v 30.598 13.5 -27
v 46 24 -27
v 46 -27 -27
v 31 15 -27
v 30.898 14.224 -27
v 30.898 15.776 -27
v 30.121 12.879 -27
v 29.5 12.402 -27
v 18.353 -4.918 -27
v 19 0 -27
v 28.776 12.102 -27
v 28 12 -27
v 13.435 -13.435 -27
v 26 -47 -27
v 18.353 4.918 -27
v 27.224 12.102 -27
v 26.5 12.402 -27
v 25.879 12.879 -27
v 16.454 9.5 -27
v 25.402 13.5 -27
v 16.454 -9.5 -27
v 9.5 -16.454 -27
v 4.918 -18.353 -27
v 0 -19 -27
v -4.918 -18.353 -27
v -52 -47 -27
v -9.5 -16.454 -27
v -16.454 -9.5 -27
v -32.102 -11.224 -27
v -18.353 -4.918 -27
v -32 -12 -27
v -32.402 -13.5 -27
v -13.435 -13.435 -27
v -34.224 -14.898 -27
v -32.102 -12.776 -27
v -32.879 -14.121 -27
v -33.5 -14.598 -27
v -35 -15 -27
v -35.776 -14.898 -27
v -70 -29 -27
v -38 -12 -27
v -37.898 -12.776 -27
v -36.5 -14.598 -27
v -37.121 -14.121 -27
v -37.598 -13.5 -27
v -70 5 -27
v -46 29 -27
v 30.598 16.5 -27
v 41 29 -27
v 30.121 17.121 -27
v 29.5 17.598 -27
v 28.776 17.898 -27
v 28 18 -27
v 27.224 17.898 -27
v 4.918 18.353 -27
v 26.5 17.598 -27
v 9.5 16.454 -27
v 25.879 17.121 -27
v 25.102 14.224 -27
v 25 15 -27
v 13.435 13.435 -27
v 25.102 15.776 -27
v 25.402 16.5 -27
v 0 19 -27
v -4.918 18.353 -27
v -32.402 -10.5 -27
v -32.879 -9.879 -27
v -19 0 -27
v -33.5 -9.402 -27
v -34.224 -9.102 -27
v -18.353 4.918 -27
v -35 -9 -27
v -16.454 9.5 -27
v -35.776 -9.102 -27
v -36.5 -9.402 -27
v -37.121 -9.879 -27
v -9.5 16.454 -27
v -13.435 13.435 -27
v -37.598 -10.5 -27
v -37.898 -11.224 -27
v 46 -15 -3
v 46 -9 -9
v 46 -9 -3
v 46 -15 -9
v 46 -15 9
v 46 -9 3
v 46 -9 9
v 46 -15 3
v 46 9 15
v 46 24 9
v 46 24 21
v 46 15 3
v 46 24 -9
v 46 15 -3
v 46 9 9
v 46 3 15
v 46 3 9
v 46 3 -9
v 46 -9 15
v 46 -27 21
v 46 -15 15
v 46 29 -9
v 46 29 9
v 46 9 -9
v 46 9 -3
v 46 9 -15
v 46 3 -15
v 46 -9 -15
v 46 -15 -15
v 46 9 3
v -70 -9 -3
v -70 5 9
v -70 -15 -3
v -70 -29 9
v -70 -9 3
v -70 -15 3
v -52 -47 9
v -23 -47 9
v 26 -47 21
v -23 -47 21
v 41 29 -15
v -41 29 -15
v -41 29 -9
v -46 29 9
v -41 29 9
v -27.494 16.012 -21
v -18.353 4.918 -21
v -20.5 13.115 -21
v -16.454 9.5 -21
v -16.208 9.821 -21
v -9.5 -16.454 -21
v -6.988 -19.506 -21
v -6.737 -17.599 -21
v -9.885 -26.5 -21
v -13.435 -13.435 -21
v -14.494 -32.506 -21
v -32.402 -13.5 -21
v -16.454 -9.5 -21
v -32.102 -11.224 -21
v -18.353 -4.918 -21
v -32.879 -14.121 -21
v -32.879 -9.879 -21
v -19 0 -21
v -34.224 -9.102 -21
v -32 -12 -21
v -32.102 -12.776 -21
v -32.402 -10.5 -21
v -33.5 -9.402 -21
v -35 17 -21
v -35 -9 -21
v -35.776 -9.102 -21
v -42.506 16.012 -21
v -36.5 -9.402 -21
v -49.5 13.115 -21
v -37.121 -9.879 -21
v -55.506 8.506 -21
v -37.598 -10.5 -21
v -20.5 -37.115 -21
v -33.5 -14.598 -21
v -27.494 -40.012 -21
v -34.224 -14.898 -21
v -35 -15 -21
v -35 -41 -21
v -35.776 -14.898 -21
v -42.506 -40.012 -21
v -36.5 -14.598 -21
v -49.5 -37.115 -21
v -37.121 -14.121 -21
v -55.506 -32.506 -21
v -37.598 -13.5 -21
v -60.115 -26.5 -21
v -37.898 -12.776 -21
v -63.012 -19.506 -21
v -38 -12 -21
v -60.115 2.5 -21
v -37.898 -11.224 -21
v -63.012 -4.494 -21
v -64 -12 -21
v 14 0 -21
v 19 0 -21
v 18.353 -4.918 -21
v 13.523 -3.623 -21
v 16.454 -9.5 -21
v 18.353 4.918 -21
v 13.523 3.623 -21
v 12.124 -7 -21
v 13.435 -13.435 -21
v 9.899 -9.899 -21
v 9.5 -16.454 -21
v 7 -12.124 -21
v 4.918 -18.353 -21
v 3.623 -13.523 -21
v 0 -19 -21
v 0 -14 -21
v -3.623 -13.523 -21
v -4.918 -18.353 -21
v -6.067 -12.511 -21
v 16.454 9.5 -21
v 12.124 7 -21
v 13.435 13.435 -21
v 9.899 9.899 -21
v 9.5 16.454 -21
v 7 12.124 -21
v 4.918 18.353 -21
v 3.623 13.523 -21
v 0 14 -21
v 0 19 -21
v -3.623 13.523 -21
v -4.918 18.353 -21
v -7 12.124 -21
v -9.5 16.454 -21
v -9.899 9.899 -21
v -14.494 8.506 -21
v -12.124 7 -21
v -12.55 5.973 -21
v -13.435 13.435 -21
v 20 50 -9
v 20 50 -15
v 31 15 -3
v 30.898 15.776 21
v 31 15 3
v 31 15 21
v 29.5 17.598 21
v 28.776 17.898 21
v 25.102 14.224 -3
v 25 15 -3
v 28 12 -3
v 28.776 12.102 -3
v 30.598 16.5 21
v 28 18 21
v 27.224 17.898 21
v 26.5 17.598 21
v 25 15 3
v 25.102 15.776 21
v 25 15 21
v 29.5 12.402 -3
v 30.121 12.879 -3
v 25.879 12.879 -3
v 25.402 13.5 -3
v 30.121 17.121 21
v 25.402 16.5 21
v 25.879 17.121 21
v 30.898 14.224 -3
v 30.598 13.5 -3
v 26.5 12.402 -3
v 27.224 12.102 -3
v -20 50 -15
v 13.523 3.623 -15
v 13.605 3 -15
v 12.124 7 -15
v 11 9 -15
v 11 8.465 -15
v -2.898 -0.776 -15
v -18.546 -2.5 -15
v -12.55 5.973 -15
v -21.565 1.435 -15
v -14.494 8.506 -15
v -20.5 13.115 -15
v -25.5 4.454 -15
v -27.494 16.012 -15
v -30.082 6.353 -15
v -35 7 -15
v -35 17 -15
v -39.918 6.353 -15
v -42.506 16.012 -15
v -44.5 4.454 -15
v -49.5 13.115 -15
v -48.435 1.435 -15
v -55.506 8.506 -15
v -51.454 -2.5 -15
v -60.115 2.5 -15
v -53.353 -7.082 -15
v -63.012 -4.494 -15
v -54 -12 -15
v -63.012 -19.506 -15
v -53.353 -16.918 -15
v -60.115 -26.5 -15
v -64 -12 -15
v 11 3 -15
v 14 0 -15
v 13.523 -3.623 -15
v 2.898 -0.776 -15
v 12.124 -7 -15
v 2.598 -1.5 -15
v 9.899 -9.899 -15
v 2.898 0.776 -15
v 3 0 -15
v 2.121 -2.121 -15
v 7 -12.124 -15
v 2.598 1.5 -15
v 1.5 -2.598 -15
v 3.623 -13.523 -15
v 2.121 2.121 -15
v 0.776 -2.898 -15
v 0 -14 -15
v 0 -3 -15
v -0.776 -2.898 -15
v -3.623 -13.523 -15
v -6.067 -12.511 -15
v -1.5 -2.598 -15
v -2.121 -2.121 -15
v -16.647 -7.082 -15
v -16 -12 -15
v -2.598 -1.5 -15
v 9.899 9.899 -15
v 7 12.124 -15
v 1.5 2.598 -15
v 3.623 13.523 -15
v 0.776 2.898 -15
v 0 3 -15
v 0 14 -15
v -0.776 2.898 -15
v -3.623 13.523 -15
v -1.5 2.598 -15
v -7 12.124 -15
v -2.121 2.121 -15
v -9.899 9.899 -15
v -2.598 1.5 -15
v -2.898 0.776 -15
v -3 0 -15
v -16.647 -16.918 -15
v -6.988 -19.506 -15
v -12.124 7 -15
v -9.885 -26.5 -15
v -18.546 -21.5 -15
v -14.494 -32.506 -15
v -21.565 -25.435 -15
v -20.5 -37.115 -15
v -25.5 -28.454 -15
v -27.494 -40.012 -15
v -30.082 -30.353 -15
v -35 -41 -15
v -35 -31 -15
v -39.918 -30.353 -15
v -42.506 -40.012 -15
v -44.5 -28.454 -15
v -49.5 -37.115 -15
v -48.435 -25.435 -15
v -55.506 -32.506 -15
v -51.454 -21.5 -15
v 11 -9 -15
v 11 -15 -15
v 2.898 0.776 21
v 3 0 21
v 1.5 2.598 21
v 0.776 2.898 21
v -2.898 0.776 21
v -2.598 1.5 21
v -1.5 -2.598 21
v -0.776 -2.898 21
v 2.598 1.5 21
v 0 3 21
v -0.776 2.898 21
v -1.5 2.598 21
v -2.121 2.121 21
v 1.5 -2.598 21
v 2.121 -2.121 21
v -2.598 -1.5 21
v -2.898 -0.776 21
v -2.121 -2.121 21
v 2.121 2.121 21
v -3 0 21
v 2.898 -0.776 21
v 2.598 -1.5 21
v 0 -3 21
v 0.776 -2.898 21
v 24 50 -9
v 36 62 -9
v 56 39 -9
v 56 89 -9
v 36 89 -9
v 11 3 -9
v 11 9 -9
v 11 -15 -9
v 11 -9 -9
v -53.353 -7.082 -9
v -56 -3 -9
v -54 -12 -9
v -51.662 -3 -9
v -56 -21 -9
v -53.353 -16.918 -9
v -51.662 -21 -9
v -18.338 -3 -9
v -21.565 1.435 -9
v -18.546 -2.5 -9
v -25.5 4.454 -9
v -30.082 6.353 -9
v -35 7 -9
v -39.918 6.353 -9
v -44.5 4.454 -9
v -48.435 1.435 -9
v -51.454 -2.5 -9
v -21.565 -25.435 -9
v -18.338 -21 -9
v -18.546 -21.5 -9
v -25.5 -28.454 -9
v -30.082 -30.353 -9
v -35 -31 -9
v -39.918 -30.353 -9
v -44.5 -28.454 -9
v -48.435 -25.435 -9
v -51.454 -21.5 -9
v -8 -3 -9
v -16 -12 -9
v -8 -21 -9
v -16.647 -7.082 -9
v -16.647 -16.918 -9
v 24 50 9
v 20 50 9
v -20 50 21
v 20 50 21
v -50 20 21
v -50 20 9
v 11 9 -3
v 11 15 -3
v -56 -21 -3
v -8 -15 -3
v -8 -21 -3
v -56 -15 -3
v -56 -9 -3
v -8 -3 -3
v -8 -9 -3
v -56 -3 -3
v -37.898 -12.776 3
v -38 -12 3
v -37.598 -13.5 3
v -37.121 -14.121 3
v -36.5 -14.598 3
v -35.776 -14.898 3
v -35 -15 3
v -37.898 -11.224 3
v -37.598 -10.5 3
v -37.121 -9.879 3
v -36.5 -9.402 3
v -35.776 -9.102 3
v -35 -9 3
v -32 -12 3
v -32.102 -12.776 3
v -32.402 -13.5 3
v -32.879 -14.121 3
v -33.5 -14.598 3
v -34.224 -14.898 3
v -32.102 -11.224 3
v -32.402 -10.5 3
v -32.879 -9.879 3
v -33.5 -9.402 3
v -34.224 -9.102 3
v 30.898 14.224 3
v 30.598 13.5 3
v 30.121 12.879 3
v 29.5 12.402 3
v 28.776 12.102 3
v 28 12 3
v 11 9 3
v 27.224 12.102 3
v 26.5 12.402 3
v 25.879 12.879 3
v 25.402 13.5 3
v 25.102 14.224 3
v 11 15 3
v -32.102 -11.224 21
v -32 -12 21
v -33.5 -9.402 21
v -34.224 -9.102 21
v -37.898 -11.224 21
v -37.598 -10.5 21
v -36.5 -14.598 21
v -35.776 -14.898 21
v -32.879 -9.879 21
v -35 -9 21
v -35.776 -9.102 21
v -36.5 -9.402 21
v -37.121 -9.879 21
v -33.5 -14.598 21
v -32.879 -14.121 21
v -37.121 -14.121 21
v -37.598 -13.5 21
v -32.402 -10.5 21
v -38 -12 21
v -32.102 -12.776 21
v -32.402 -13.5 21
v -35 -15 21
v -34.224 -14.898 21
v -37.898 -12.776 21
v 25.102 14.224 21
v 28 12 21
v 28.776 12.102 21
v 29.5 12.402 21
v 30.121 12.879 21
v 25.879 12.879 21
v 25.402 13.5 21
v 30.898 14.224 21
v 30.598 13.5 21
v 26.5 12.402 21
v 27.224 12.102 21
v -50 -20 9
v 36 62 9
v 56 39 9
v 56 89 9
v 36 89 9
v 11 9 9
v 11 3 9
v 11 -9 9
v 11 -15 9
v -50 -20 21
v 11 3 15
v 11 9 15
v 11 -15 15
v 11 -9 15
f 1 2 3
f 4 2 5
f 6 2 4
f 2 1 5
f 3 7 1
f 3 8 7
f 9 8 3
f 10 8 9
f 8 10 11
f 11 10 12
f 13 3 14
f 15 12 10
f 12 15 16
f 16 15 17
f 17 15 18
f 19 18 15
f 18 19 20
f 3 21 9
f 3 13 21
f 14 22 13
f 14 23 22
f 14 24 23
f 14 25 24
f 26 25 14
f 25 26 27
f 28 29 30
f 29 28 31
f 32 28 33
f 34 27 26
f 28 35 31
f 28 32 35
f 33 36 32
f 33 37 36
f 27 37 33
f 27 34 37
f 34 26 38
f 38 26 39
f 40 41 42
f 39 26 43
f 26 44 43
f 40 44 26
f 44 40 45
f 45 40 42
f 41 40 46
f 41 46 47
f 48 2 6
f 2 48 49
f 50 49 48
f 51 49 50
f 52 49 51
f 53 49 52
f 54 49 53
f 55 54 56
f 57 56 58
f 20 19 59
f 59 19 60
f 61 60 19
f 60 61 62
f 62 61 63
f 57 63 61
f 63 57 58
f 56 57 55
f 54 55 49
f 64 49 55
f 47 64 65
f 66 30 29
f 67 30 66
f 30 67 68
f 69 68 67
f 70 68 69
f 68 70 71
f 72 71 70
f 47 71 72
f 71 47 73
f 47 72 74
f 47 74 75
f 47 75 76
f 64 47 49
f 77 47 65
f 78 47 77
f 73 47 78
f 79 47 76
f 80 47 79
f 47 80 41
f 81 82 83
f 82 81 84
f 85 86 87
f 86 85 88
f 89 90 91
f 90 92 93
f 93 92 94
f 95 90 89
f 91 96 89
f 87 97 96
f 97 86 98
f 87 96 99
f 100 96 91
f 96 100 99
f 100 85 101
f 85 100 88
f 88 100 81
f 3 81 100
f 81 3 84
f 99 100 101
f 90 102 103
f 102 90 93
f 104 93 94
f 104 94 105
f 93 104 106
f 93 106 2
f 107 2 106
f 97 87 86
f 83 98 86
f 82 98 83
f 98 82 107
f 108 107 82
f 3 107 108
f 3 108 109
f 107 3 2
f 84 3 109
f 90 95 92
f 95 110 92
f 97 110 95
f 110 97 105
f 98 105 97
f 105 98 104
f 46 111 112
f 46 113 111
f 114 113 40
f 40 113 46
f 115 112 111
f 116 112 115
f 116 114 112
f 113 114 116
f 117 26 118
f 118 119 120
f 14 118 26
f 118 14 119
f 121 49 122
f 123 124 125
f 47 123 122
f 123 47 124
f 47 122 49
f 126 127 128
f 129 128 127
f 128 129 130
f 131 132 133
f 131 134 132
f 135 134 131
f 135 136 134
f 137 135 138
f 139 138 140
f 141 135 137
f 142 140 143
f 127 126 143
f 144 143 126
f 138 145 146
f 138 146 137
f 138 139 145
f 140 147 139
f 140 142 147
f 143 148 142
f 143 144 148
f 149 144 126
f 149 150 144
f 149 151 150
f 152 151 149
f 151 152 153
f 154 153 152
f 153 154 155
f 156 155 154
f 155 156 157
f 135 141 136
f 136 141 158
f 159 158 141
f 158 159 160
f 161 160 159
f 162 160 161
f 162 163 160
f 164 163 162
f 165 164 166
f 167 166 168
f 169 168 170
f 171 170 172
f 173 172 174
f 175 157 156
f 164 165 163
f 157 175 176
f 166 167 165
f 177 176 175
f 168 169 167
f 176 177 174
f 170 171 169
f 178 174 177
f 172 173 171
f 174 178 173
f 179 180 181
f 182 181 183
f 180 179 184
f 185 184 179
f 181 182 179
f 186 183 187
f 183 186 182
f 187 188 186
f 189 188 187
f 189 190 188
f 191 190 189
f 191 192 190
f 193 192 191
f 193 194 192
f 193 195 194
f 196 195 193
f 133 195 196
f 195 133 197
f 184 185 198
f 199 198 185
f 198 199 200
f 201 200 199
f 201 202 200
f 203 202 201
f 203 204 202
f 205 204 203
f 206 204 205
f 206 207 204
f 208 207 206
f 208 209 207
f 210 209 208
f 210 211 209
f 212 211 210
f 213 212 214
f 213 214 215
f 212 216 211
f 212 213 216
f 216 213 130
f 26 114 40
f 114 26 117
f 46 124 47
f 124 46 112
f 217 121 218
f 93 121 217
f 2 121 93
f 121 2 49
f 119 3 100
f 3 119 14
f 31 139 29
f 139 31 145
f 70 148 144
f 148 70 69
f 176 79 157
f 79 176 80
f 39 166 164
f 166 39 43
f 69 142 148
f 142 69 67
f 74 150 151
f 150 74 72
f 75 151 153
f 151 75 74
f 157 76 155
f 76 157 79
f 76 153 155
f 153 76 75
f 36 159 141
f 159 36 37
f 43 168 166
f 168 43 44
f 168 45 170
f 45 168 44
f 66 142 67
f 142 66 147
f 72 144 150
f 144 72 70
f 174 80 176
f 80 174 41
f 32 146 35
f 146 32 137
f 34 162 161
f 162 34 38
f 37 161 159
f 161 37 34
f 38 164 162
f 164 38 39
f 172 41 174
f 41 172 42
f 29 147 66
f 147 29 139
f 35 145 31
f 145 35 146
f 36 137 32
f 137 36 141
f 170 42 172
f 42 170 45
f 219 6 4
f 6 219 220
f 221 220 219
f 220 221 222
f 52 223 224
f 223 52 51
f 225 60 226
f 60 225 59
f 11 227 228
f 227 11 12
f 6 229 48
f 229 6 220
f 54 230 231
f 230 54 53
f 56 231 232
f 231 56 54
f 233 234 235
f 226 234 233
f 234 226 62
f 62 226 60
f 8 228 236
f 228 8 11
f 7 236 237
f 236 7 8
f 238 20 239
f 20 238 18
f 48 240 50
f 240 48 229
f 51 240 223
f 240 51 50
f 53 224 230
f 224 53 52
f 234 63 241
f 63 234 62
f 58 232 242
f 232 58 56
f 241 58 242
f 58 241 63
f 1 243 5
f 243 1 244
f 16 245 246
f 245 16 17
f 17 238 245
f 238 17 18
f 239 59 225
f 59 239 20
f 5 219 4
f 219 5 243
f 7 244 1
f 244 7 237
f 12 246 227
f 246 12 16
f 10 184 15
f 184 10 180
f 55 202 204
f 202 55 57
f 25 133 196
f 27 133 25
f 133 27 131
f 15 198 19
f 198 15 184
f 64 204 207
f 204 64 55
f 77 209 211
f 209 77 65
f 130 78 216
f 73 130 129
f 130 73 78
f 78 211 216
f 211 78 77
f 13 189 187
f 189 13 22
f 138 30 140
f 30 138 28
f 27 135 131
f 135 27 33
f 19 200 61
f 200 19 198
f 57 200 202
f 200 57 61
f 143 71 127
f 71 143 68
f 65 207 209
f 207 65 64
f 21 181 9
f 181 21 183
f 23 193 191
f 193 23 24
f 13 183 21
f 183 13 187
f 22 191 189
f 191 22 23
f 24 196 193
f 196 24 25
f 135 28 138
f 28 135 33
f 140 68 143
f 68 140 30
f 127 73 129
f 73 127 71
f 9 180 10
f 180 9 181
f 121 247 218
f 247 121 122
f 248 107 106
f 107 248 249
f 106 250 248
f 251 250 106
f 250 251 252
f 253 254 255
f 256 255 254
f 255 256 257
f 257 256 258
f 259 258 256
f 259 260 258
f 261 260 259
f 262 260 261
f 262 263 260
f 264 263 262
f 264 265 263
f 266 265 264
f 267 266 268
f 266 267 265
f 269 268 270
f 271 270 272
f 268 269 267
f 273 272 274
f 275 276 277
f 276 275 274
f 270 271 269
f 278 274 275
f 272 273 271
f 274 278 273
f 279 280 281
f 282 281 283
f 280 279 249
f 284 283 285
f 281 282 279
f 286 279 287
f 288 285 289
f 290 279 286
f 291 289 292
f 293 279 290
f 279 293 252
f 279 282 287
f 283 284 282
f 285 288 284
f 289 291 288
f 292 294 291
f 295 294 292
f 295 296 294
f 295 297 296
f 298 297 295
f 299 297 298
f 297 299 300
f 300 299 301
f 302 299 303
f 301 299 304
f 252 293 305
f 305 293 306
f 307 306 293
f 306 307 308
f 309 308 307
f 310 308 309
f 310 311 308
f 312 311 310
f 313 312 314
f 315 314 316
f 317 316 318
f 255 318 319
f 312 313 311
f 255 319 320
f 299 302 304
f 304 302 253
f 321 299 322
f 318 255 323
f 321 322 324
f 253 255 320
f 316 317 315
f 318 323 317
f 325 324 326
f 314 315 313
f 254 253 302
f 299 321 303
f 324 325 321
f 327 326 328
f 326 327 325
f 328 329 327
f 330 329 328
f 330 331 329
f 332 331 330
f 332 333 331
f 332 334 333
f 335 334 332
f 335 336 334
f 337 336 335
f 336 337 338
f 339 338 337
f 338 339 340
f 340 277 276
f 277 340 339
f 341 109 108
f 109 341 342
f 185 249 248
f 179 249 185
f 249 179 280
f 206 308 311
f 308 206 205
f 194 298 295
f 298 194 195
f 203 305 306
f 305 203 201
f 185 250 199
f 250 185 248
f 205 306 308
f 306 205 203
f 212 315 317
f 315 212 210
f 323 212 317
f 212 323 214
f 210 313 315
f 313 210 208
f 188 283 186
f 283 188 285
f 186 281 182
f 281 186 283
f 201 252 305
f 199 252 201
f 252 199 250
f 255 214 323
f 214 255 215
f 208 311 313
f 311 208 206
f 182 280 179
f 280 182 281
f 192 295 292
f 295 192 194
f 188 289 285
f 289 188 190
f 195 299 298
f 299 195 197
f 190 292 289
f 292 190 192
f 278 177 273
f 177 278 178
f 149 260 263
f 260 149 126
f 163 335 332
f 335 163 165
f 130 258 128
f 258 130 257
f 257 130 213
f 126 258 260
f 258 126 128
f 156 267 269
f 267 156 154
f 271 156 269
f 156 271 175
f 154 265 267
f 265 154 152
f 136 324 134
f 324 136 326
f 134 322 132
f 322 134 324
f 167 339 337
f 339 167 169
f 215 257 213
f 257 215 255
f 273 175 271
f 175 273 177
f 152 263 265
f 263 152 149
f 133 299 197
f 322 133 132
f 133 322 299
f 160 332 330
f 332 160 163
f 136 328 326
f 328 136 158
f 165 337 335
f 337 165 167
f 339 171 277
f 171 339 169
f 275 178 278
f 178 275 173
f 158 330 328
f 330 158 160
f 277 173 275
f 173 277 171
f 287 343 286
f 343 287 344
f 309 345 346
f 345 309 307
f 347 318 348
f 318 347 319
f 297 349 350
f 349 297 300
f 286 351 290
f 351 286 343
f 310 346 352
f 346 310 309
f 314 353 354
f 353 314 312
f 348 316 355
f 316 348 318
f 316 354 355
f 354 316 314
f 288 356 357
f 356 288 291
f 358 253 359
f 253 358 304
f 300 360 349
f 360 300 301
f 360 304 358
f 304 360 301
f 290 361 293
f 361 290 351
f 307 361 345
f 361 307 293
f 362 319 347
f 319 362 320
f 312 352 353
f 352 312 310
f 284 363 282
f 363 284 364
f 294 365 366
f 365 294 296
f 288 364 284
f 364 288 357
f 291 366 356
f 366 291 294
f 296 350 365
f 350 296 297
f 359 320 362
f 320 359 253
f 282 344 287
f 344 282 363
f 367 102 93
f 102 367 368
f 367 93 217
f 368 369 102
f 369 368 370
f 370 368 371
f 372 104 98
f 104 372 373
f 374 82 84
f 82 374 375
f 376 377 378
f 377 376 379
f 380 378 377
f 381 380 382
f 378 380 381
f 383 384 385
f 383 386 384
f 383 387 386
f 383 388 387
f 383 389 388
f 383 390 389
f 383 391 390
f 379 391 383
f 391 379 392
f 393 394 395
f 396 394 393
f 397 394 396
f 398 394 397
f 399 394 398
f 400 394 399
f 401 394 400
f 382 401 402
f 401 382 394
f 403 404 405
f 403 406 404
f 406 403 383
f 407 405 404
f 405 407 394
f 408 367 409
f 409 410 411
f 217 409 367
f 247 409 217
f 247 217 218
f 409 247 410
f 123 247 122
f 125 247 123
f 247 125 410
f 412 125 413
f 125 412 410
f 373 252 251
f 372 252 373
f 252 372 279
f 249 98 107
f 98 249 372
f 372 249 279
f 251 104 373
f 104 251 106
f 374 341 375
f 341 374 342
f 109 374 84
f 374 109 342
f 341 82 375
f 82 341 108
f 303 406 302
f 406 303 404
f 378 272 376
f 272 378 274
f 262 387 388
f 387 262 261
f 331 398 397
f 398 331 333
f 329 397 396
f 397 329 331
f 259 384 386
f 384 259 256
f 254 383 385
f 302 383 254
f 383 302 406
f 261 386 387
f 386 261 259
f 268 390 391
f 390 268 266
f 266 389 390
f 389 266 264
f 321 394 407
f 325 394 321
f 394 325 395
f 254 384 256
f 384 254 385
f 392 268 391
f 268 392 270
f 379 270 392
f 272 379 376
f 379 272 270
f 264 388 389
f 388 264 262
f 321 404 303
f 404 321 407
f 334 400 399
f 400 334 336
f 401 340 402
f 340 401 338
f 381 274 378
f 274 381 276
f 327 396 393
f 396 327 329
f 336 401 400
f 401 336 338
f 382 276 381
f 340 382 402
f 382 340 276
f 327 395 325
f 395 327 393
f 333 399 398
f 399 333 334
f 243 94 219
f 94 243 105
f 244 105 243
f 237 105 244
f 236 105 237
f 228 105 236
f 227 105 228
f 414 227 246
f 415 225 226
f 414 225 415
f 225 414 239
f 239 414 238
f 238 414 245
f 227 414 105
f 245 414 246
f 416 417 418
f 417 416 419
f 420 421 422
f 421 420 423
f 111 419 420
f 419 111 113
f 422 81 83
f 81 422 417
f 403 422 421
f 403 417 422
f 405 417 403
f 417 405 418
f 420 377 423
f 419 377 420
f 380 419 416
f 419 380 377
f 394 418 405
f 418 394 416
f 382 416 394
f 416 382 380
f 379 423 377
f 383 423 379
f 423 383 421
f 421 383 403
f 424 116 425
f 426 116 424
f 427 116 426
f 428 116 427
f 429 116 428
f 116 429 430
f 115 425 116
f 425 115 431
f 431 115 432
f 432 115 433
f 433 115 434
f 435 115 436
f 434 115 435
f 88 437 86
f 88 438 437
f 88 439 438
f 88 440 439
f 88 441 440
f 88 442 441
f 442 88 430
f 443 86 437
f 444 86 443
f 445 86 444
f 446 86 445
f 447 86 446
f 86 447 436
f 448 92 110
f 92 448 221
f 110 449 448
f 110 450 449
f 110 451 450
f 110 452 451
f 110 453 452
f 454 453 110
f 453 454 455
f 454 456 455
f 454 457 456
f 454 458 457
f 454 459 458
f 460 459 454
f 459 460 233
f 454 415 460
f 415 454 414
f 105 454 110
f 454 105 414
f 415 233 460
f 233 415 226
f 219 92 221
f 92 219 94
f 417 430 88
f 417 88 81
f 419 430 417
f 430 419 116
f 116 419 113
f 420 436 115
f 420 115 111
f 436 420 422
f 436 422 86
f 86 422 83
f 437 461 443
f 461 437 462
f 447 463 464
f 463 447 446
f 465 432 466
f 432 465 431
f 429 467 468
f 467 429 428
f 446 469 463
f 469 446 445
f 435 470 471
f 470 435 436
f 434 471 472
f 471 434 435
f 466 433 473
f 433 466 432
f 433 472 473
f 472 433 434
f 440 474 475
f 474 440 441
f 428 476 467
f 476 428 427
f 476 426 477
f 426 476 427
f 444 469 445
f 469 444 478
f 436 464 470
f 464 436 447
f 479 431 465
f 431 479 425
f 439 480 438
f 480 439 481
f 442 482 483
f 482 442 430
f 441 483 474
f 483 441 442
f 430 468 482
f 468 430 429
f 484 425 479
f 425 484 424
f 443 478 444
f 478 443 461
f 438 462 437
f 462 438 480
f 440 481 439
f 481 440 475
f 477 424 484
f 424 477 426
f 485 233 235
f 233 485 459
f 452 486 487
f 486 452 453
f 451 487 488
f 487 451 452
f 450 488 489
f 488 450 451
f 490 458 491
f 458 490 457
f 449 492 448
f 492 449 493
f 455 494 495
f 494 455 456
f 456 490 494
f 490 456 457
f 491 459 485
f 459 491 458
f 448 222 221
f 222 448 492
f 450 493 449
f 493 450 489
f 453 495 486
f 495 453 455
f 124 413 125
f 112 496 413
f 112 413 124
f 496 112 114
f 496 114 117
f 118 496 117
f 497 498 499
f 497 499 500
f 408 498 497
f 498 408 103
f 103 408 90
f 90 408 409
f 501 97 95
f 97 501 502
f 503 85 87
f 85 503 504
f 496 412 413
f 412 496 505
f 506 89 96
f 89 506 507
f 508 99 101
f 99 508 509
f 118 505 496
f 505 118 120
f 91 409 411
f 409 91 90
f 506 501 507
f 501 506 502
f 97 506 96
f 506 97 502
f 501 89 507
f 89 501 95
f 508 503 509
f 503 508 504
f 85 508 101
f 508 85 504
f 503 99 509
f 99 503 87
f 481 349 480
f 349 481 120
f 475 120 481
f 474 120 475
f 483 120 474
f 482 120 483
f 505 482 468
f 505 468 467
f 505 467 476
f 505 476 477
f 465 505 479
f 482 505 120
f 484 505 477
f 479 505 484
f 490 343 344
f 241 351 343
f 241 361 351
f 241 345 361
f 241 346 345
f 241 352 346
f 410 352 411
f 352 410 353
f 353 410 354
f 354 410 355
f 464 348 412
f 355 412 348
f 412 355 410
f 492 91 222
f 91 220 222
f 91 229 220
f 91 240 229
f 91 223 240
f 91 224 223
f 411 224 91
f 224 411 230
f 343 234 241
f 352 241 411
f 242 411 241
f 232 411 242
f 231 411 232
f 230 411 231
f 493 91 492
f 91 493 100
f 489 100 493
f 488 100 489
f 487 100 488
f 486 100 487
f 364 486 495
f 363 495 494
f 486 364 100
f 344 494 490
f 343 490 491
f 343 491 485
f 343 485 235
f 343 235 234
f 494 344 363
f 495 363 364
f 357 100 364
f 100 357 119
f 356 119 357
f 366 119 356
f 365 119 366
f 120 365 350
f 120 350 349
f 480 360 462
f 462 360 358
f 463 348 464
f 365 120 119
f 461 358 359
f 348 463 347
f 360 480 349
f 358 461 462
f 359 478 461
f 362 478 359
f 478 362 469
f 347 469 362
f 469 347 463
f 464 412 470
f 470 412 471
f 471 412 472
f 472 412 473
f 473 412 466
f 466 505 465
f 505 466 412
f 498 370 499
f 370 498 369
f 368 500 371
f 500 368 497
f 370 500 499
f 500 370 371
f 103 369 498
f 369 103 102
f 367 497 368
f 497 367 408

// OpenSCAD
include <../main.scad>
$holeflg = false;
$chamfflg = false;

ASSY_B();
